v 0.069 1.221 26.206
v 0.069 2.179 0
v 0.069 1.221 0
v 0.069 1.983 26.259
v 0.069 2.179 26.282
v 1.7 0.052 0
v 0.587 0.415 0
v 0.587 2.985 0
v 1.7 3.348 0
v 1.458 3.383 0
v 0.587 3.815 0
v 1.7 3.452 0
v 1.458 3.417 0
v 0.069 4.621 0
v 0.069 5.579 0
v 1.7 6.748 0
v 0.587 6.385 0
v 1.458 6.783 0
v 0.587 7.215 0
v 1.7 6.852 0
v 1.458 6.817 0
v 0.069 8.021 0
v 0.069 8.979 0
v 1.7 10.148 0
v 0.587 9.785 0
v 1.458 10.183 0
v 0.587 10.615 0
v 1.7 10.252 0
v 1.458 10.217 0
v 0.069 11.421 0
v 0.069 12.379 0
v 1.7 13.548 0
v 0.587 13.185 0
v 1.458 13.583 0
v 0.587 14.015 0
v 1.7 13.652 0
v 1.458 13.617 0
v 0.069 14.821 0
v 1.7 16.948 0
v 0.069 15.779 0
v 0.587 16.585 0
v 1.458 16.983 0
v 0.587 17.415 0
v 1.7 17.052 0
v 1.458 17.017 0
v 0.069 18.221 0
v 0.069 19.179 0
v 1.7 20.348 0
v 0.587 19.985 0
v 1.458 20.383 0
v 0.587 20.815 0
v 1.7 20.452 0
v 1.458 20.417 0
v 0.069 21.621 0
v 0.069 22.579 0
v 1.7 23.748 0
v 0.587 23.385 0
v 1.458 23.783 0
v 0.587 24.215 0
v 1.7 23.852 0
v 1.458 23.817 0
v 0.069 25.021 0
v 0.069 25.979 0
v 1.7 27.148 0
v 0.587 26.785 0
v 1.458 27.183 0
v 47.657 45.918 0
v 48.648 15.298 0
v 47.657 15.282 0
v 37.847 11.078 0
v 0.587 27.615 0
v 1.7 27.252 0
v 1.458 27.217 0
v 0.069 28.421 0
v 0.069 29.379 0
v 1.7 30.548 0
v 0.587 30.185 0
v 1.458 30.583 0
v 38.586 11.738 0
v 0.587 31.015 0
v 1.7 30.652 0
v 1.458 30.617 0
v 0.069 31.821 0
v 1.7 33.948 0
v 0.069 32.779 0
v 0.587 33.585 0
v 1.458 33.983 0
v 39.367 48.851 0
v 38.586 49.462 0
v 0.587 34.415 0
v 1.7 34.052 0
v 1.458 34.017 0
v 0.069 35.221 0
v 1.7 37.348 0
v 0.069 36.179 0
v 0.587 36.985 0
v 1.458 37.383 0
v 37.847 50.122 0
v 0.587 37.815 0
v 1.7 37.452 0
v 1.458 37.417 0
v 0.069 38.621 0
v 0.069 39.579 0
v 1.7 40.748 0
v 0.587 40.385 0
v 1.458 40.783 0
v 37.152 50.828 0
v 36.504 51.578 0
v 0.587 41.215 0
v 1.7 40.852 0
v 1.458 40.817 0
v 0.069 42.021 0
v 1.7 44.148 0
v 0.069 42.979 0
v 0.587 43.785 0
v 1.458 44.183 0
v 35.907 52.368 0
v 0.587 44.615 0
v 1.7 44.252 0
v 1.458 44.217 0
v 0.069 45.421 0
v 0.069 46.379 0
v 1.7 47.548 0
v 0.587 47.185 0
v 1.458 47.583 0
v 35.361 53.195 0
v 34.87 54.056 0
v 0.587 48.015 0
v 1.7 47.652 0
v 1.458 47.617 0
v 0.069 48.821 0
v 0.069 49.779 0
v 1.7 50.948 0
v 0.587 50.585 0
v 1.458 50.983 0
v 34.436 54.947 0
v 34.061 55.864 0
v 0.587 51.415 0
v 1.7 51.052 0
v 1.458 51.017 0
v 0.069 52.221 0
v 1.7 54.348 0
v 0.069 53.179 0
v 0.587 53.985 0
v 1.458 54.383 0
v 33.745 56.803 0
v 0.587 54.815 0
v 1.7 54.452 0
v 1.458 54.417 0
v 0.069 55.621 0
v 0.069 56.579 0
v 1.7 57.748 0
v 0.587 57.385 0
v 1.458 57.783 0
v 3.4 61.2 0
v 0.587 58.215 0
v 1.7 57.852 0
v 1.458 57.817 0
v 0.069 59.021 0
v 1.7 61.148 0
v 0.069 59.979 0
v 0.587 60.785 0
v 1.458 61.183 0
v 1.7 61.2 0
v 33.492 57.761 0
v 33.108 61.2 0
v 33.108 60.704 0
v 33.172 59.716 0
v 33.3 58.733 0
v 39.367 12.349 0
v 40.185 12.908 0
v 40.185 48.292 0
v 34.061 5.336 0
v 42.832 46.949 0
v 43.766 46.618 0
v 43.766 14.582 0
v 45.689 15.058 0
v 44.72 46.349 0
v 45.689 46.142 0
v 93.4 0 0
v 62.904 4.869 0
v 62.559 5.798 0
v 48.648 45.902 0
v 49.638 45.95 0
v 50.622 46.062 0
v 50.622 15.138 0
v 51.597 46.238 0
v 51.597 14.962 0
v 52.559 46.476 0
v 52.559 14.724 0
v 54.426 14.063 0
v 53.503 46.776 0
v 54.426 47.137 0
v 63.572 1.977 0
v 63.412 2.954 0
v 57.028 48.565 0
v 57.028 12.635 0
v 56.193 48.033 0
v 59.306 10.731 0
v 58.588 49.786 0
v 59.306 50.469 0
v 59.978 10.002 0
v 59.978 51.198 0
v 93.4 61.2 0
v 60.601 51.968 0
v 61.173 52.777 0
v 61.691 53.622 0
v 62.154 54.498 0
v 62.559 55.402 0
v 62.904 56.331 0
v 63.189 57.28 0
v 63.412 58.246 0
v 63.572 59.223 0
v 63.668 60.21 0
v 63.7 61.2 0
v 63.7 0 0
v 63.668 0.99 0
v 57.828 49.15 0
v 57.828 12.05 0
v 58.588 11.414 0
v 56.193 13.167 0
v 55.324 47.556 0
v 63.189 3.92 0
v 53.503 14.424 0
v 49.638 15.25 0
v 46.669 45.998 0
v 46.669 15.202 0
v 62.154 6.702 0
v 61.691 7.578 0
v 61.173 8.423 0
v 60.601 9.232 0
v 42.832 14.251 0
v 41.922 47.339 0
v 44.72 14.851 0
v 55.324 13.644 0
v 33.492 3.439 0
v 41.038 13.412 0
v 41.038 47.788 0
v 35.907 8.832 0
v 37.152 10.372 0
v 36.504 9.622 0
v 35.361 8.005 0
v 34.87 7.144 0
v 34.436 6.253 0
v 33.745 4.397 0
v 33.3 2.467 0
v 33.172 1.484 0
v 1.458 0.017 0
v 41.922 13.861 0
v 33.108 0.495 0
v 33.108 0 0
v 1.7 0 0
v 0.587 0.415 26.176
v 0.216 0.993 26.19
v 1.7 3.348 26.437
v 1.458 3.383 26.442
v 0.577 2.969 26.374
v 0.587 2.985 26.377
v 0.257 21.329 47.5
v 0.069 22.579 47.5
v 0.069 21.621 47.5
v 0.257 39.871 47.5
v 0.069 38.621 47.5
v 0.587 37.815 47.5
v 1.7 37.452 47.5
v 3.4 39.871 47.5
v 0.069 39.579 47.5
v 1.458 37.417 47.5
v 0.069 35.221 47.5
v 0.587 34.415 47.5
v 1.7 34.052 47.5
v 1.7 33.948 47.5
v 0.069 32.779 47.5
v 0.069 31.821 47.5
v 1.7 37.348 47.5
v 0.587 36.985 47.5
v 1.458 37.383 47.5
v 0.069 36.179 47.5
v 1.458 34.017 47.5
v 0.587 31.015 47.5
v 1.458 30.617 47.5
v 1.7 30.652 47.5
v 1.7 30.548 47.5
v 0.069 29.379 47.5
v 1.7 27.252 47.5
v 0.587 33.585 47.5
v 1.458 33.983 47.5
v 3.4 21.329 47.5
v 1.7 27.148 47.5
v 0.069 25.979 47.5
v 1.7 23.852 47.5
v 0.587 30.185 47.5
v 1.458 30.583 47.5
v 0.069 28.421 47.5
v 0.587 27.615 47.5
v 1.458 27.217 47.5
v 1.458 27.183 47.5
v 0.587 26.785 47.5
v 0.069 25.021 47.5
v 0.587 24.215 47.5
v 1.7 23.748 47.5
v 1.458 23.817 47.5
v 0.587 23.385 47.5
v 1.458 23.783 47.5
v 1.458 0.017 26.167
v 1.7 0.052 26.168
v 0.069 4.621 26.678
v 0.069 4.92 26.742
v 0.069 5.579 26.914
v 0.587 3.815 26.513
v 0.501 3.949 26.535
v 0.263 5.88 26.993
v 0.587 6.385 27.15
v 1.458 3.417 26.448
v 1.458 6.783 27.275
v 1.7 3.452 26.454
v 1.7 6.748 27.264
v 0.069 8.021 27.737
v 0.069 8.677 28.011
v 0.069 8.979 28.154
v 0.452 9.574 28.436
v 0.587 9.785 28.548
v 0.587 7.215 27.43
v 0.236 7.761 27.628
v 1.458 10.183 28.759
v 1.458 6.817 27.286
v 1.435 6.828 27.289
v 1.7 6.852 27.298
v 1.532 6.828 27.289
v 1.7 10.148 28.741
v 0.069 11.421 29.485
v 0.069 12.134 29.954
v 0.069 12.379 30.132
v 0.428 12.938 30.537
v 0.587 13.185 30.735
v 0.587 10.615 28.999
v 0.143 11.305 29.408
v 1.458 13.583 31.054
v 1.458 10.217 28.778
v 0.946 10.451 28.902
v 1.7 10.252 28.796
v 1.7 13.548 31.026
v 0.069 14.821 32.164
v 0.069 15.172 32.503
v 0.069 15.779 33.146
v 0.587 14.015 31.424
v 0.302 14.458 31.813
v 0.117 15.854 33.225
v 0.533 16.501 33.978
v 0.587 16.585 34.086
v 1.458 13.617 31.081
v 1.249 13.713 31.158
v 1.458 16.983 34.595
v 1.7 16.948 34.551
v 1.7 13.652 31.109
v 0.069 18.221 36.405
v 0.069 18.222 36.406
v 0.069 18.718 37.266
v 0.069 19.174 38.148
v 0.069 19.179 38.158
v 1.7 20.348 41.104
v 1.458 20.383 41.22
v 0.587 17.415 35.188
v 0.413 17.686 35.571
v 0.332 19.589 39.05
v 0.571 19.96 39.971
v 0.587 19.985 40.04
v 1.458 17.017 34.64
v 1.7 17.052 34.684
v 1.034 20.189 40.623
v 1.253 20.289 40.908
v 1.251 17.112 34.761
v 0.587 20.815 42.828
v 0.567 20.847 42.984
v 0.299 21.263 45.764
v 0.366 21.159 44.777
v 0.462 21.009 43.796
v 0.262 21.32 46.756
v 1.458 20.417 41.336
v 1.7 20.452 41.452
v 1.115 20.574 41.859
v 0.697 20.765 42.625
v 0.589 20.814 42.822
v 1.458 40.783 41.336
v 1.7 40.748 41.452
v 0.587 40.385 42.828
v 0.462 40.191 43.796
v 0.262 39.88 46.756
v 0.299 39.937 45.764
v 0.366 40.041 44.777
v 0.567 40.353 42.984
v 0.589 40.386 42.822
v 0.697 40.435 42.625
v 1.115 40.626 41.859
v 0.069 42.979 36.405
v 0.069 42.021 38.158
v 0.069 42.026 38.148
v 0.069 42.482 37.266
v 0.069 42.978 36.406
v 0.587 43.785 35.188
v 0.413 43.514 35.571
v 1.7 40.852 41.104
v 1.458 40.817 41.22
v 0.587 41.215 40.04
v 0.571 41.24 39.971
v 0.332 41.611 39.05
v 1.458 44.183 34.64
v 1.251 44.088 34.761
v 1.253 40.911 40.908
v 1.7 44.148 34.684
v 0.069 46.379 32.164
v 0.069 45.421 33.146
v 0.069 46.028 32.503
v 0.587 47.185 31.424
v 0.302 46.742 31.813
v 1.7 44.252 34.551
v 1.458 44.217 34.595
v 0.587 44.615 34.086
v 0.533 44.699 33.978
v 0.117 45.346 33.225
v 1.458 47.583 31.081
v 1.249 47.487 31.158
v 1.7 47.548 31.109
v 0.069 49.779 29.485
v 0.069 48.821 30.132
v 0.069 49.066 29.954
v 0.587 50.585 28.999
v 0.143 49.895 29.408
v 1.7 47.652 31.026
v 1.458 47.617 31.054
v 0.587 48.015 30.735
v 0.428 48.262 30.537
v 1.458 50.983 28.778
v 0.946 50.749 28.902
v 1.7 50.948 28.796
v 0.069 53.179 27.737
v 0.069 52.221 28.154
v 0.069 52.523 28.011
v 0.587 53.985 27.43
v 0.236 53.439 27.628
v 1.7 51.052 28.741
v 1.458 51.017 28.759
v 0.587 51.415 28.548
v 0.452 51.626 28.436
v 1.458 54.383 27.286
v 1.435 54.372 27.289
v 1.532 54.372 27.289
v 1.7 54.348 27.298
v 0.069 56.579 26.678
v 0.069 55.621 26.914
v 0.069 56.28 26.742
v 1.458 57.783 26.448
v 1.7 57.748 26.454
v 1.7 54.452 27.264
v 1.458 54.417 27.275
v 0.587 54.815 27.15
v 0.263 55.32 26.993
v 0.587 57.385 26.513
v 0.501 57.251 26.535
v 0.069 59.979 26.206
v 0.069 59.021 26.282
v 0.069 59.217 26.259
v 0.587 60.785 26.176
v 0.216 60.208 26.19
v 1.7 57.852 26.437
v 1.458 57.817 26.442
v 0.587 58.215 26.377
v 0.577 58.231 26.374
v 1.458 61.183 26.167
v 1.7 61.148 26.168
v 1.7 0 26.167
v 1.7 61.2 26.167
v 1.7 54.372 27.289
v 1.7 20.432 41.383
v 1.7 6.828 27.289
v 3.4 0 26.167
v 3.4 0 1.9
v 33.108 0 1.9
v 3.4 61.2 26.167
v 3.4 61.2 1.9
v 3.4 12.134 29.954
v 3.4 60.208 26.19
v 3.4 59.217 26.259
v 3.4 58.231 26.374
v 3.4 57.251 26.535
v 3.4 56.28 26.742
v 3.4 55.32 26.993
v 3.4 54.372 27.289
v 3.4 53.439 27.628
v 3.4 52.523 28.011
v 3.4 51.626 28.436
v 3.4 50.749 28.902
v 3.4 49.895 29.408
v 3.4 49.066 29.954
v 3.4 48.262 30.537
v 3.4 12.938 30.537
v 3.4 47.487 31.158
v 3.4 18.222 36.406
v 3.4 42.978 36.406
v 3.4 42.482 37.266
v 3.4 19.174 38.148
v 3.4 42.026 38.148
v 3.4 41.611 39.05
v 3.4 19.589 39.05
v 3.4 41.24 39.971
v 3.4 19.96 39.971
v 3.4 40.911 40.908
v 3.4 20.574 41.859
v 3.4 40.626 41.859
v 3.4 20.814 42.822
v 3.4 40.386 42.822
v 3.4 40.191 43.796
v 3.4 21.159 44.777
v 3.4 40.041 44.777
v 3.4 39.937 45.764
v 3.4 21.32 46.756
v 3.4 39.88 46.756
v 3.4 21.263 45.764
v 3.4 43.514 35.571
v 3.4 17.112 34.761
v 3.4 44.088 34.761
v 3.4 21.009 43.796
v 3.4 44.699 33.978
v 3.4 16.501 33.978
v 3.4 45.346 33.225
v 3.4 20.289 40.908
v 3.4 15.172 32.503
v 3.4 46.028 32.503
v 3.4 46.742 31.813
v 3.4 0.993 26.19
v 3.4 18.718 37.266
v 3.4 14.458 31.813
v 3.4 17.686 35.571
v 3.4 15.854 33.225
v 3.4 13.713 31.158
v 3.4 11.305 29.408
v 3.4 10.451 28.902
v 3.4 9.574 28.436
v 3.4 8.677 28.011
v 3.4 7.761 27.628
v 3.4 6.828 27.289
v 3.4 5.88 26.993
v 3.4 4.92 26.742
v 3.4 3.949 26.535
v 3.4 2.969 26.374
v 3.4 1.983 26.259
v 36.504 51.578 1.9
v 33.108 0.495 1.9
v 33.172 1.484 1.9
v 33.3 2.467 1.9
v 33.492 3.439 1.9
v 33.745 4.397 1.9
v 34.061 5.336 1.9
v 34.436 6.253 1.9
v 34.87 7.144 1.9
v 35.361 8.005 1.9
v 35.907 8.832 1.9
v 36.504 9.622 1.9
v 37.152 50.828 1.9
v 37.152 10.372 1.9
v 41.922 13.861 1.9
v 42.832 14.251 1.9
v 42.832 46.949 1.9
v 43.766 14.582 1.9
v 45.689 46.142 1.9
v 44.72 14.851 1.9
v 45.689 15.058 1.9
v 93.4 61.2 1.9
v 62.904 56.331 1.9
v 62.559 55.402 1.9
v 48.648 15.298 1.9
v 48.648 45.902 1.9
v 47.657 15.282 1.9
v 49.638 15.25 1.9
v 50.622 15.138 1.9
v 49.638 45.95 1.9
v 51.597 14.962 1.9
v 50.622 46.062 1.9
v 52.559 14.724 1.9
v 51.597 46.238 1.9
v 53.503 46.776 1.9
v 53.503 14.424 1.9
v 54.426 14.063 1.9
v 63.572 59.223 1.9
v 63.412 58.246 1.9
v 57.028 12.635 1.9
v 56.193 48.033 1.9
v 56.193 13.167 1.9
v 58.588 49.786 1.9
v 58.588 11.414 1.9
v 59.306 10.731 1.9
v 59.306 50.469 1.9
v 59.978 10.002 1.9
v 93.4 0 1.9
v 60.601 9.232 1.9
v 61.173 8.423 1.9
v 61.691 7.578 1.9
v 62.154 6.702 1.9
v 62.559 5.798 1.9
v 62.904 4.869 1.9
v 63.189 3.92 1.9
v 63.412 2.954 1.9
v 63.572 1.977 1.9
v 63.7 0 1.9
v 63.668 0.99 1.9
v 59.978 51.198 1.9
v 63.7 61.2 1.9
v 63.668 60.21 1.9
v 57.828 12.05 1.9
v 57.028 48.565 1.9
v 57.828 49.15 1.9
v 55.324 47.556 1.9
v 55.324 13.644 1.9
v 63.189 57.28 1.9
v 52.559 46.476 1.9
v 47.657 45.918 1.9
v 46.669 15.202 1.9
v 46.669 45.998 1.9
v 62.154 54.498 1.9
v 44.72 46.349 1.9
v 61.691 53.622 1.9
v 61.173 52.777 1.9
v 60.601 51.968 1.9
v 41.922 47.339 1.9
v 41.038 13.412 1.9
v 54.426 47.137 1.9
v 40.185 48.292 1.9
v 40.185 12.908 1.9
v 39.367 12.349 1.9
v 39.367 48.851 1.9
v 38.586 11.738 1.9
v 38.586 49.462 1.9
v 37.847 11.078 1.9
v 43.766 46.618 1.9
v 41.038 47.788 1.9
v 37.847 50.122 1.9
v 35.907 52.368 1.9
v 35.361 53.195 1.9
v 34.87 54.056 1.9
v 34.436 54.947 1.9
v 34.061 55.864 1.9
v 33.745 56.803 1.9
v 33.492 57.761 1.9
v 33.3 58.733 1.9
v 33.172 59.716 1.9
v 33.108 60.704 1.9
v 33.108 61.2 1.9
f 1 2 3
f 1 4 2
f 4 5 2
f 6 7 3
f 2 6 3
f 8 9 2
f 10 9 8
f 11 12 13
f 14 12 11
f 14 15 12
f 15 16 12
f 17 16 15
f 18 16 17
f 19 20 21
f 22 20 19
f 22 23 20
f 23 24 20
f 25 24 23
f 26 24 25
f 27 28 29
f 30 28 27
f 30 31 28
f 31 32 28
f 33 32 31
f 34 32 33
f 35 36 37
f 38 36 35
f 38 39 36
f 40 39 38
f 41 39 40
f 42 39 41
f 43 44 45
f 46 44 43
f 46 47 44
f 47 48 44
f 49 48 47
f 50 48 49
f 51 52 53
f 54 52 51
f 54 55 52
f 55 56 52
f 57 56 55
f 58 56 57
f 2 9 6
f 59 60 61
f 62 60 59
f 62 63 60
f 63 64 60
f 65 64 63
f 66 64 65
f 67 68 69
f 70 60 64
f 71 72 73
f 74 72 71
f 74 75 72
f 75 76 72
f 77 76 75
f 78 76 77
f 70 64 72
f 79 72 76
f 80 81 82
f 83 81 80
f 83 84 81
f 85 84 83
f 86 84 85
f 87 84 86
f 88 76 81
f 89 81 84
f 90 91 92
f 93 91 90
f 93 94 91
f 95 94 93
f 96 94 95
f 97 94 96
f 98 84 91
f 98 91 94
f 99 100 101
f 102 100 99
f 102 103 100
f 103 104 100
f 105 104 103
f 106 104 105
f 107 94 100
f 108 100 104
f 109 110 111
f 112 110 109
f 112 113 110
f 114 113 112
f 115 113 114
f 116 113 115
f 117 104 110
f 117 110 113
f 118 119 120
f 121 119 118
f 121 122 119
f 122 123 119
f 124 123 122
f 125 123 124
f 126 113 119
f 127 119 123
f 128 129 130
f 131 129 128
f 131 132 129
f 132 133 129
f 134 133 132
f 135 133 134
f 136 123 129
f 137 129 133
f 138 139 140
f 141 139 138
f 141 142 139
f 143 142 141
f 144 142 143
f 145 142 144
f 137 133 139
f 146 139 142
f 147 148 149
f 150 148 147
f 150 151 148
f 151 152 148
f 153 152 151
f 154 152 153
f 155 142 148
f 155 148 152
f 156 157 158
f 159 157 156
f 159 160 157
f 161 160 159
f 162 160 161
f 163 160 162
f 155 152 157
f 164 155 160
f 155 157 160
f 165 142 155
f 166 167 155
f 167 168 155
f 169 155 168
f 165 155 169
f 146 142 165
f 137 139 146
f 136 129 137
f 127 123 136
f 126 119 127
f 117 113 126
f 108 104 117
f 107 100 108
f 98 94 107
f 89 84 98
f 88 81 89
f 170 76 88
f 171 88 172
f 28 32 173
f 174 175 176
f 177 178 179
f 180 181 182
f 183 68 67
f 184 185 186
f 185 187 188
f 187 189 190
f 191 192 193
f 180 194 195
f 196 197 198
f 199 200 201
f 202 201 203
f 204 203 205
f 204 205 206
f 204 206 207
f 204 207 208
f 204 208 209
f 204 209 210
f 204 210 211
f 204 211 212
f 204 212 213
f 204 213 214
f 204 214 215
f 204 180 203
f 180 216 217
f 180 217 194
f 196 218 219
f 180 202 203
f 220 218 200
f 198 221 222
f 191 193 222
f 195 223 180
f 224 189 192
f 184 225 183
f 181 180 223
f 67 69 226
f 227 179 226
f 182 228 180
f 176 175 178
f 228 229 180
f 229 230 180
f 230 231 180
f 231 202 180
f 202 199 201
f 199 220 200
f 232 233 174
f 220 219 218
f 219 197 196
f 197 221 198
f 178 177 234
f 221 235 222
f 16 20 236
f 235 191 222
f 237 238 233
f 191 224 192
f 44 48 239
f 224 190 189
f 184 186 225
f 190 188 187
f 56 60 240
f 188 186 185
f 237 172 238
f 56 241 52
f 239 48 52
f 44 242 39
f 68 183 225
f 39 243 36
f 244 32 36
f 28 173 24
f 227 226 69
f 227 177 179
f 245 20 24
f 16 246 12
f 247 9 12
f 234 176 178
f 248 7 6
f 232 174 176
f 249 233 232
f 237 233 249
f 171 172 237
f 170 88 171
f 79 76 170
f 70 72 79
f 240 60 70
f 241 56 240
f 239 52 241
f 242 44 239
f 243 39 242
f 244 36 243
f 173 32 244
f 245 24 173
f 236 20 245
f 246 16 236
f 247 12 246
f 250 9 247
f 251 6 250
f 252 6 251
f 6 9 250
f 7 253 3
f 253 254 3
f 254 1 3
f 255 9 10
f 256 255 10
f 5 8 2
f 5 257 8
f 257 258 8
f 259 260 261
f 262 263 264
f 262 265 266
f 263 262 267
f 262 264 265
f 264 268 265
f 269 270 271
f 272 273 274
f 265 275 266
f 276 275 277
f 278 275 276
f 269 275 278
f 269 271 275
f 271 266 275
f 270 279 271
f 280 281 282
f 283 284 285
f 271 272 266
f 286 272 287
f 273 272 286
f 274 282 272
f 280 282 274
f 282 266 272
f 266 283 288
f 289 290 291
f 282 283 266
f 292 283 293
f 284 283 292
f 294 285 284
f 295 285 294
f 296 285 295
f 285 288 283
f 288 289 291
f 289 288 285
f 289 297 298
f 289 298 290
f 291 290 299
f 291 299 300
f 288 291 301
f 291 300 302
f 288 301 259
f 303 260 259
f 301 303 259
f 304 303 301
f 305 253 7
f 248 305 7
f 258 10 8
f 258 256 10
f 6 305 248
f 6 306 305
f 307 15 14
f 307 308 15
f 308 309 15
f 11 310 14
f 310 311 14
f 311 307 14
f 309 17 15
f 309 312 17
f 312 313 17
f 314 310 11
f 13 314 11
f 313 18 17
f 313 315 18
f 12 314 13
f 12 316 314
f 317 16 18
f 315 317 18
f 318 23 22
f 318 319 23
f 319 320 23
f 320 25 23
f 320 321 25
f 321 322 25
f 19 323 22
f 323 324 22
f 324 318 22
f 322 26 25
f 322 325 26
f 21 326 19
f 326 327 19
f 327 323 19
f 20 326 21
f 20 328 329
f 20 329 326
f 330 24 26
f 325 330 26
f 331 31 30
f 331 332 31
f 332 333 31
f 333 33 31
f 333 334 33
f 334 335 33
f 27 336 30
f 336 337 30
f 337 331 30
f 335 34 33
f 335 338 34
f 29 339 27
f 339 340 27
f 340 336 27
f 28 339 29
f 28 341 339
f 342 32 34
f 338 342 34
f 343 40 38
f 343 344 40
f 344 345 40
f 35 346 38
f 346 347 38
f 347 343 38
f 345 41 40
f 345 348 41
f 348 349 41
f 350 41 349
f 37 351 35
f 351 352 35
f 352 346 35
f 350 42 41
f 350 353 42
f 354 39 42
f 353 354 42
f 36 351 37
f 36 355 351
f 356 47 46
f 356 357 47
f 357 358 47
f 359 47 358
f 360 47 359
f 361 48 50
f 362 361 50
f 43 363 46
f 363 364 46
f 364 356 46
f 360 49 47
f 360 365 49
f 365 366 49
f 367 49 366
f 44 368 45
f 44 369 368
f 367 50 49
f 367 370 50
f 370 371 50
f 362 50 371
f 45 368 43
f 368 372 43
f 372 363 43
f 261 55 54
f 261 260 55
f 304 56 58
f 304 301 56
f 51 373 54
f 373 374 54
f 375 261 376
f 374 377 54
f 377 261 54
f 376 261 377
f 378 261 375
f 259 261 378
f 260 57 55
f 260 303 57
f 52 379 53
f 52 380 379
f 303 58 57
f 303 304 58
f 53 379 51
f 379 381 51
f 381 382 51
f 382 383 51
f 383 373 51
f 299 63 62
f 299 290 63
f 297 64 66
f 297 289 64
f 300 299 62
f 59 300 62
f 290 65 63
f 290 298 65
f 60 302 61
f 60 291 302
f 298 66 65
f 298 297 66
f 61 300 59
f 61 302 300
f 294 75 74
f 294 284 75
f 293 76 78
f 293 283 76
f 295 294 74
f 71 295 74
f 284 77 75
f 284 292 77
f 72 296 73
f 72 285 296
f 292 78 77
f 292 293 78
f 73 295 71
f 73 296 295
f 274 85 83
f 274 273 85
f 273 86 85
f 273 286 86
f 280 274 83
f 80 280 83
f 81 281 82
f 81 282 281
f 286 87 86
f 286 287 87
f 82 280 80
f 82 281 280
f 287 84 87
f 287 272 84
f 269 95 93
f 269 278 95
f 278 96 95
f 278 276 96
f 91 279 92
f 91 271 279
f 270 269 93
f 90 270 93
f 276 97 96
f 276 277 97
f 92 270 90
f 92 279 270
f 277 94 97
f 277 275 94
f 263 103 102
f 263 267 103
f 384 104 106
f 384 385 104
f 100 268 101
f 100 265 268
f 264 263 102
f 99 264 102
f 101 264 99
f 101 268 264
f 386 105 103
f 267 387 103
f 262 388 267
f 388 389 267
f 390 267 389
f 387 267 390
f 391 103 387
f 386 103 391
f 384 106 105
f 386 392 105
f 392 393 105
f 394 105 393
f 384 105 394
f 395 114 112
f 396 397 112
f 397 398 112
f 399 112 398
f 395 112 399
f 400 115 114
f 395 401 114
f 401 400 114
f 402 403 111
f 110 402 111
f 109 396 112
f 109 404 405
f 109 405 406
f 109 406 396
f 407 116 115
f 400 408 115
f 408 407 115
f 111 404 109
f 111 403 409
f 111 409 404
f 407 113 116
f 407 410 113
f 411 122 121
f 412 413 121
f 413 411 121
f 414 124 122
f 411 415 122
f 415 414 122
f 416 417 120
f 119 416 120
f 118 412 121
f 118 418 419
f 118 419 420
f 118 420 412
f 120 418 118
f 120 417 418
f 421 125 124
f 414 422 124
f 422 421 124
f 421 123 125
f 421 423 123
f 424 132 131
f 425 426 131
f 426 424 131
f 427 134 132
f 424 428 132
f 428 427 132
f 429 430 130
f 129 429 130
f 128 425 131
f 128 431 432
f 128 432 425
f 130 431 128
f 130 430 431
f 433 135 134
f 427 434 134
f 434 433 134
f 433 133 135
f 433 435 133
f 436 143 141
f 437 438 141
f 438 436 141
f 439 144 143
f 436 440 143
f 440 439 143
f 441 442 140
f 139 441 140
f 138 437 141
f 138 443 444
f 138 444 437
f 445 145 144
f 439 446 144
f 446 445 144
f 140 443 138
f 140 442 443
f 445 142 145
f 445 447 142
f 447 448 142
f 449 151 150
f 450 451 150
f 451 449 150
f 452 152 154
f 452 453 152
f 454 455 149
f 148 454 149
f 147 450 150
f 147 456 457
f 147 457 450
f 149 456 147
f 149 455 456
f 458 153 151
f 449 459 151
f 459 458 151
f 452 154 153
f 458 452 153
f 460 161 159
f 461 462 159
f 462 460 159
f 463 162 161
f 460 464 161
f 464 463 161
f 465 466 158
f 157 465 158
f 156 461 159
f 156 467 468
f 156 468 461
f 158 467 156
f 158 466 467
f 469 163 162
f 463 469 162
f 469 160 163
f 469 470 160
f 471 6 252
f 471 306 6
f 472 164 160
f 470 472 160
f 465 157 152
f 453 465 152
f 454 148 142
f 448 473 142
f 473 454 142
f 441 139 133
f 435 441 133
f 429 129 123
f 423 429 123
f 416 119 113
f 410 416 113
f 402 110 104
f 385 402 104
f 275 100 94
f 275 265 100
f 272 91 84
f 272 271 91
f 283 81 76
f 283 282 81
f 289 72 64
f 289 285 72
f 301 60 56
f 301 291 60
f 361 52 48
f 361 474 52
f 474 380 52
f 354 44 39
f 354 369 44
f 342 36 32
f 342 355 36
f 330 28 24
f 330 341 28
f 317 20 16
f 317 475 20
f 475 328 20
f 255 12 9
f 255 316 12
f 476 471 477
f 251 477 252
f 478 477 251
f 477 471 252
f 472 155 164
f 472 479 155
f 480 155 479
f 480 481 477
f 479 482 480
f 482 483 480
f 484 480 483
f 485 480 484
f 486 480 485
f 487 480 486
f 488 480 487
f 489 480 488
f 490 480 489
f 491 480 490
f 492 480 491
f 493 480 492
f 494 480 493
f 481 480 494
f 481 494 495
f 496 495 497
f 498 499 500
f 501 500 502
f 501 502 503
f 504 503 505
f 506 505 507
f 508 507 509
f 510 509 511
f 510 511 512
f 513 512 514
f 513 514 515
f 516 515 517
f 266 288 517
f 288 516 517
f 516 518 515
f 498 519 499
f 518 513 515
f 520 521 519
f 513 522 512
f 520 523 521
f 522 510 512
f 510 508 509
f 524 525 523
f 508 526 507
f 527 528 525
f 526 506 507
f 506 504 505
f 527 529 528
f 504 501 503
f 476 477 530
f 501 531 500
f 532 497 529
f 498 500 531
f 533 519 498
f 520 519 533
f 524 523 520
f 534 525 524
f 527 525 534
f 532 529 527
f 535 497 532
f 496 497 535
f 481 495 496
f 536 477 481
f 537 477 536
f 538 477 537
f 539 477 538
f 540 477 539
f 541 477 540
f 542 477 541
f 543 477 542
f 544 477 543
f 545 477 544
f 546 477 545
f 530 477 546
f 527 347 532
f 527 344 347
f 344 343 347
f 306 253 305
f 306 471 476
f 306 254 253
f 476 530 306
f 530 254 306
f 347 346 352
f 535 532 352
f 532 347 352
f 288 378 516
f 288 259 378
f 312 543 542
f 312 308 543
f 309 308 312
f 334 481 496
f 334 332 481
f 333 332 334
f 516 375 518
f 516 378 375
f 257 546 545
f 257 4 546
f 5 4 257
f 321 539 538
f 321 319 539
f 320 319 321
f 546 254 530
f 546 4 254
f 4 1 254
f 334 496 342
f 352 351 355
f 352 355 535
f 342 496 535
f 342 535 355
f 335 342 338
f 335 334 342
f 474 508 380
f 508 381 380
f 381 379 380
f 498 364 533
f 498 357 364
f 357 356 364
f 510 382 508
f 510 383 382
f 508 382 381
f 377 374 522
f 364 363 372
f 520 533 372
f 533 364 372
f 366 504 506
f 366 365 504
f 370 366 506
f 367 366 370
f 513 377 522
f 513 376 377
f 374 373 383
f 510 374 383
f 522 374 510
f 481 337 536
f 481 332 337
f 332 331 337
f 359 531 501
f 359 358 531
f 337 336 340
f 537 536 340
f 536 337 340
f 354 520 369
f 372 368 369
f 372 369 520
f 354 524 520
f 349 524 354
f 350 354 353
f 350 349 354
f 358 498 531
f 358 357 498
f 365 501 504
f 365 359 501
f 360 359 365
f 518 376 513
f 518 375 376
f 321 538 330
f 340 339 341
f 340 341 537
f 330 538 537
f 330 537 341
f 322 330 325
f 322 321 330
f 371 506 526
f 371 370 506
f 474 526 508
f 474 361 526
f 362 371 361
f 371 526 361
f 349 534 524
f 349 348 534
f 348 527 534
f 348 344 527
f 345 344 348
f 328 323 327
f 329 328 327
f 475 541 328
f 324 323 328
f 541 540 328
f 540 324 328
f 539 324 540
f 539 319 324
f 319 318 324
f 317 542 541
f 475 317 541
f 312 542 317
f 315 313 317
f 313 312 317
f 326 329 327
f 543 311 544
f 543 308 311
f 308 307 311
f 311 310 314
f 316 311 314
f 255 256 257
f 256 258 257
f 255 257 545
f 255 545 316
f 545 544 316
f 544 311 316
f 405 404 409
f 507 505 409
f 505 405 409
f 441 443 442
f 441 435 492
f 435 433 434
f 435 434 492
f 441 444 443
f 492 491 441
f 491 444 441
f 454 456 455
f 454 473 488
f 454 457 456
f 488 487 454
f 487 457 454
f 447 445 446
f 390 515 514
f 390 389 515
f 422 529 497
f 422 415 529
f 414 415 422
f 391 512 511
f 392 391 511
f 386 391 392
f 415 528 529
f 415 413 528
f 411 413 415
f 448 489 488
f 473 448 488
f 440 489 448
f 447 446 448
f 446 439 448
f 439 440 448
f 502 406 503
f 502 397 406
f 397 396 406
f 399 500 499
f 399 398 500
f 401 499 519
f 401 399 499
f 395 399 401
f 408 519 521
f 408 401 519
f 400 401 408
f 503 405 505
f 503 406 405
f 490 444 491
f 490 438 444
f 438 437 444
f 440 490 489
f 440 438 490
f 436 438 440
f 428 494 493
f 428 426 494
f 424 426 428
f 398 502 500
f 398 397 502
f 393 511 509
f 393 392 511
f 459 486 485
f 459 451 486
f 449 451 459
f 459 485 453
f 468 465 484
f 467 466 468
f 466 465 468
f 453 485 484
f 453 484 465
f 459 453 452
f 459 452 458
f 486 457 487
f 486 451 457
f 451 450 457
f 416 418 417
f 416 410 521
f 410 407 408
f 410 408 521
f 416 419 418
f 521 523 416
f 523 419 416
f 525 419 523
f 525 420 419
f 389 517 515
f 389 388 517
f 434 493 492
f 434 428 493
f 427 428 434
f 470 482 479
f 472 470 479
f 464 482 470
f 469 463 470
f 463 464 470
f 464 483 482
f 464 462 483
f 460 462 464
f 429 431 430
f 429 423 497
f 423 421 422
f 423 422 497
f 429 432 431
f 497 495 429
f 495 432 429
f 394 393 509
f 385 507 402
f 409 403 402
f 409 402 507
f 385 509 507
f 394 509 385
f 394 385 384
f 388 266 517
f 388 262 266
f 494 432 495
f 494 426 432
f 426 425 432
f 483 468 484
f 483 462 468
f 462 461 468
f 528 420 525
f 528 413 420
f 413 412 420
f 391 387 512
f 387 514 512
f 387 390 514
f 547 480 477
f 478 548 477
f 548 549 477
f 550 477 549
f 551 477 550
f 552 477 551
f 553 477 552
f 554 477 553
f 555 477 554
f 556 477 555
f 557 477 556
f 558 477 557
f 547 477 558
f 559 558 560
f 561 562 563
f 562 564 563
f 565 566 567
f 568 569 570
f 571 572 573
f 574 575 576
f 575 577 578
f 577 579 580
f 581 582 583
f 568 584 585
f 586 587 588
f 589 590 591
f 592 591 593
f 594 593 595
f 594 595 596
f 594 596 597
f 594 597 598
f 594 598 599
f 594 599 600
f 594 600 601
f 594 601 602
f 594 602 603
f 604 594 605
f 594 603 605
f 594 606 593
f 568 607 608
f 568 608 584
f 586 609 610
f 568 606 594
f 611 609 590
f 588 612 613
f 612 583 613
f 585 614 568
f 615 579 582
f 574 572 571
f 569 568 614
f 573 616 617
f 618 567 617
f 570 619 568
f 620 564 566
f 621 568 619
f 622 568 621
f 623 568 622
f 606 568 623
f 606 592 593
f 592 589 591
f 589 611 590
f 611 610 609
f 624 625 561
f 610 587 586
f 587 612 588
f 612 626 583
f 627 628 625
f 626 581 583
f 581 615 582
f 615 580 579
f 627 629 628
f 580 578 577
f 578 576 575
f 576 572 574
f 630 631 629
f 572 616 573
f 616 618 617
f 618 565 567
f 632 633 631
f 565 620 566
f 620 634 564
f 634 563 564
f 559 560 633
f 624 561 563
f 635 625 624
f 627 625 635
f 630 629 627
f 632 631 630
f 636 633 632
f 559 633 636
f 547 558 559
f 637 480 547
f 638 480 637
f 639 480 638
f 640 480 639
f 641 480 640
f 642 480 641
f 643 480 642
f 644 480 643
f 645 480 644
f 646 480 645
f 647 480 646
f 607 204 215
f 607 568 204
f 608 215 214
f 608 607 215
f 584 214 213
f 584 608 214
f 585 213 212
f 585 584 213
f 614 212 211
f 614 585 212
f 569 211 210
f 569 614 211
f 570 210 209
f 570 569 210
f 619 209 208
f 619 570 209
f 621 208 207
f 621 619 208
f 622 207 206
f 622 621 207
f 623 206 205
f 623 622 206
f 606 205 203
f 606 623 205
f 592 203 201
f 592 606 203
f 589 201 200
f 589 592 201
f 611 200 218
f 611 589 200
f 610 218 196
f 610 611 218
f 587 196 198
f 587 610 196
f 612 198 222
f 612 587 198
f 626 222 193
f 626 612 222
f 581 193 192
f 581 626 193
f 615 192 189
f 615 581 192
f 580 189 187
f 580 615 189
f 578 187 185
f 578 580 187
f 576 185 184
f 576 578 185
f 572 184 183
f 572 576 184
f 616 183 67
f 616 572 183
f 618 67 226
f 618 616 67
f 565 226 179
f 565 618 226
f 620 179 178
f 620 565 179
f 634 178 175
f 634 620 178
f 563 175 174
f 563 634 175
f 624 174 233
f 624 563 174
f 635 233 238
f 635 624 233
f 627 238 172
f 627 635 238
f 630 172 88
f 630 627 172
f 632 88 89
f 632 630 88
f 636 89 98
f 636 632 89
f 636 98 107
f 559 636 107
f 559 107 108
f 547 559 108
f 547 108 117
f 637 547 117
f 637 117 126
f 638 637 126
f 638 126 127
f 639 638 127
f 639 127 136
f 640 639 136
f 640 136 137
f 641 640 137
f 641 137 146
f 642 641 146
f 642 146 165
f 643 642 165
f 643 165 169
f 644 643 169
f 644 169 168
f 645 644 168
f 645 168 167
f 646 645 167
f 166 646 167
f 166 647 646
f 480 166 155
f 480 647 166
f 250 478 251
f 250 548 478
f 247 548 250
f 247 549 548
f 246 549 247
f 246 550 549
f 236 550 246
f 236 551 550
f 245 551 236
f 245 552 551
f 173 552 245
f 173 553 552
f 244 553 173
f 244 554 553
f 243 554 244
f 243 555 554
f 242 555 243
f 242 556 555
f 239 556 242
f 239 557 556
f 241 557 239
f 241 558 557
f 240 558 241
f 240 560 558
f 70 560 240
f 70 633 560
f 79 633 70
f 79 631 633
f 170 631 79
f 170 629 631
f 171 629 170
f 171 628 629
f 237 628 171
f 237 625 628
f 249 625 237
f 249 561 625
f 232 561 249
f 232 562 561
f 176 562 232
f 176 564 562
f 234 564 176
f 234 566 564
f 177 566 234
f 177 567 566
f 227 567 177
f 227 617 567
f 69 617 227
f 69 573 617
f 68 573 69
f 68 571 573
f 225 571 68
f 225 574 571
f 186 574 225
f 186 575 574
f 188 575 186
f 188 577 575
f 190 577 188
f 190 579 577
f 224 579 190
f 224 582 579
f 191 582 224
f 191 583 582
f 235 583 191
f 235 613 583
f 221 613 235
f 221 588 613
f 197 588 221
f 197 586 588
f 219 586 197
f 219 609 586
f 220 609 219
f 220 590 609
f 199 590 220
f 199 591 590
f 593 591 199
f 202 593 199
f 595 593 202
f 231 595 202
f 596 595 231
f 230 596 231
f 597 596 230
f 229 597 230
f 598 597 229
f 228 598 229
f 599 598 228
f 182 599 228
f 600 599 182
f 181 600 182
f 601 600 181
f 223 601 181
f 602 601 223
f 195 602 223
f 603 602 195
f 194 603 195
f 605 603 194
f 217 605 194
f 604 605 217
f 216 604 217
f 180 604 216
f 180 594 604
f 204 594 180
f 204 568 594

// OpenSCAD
/**
 * A replacement card tray for a card shuffler.
 * All measurements are in mm.
 */

$fs = 1;
$fa = 1;

width = 64;

base_thickness = 1.9;
base_length = 90;

end_height = 47.5;
end_thickness_max = 3.4;
end_thickness_min = end_thickness_max / 2;

end_ridge_radius = end_thickness_max - end_thickness_min;

ridges = floor( width / ( end_ridge_radius * 2 ) );

// Calculate a width that will allow for an exact number of ridges.
even_width = (ridges * end_ridge_radius * 2 );   

// Base
translate([end_thickness_max, 0, 0]) union() {
    linear_extrude(base_thickness) difference() {
        square([base_length, even_width]);
        translate([base_length / 2, 0, 0]) circle(r=even_width / 4);
        translate([base_length / 2, even_width, 0]) circle(r=even_width / 4);
    };
};

// End
difference() {
    union() {
        translate([end_ridge_radius, 0, 0]) cube([end_thickness_min, even_width, end_height]);
        for (i = [0 : ridges - 1]) {
            translate([end_ridge_radius, end_ridge_radius + (i * end_ridge_radius * 2), 0]) cylinder(h=end_height, r=end_ridge_radius);
        }
    };
    
    translate([0, 0, end_height]) rotate([0, 90, 0]) cylinder(h=end_thickness_max, r=width / 3);
    translate([0, even_width, end_height]) rotate([0, 90, 0]) cylinder(h=end_thickness_max, r=width / 3);
};
